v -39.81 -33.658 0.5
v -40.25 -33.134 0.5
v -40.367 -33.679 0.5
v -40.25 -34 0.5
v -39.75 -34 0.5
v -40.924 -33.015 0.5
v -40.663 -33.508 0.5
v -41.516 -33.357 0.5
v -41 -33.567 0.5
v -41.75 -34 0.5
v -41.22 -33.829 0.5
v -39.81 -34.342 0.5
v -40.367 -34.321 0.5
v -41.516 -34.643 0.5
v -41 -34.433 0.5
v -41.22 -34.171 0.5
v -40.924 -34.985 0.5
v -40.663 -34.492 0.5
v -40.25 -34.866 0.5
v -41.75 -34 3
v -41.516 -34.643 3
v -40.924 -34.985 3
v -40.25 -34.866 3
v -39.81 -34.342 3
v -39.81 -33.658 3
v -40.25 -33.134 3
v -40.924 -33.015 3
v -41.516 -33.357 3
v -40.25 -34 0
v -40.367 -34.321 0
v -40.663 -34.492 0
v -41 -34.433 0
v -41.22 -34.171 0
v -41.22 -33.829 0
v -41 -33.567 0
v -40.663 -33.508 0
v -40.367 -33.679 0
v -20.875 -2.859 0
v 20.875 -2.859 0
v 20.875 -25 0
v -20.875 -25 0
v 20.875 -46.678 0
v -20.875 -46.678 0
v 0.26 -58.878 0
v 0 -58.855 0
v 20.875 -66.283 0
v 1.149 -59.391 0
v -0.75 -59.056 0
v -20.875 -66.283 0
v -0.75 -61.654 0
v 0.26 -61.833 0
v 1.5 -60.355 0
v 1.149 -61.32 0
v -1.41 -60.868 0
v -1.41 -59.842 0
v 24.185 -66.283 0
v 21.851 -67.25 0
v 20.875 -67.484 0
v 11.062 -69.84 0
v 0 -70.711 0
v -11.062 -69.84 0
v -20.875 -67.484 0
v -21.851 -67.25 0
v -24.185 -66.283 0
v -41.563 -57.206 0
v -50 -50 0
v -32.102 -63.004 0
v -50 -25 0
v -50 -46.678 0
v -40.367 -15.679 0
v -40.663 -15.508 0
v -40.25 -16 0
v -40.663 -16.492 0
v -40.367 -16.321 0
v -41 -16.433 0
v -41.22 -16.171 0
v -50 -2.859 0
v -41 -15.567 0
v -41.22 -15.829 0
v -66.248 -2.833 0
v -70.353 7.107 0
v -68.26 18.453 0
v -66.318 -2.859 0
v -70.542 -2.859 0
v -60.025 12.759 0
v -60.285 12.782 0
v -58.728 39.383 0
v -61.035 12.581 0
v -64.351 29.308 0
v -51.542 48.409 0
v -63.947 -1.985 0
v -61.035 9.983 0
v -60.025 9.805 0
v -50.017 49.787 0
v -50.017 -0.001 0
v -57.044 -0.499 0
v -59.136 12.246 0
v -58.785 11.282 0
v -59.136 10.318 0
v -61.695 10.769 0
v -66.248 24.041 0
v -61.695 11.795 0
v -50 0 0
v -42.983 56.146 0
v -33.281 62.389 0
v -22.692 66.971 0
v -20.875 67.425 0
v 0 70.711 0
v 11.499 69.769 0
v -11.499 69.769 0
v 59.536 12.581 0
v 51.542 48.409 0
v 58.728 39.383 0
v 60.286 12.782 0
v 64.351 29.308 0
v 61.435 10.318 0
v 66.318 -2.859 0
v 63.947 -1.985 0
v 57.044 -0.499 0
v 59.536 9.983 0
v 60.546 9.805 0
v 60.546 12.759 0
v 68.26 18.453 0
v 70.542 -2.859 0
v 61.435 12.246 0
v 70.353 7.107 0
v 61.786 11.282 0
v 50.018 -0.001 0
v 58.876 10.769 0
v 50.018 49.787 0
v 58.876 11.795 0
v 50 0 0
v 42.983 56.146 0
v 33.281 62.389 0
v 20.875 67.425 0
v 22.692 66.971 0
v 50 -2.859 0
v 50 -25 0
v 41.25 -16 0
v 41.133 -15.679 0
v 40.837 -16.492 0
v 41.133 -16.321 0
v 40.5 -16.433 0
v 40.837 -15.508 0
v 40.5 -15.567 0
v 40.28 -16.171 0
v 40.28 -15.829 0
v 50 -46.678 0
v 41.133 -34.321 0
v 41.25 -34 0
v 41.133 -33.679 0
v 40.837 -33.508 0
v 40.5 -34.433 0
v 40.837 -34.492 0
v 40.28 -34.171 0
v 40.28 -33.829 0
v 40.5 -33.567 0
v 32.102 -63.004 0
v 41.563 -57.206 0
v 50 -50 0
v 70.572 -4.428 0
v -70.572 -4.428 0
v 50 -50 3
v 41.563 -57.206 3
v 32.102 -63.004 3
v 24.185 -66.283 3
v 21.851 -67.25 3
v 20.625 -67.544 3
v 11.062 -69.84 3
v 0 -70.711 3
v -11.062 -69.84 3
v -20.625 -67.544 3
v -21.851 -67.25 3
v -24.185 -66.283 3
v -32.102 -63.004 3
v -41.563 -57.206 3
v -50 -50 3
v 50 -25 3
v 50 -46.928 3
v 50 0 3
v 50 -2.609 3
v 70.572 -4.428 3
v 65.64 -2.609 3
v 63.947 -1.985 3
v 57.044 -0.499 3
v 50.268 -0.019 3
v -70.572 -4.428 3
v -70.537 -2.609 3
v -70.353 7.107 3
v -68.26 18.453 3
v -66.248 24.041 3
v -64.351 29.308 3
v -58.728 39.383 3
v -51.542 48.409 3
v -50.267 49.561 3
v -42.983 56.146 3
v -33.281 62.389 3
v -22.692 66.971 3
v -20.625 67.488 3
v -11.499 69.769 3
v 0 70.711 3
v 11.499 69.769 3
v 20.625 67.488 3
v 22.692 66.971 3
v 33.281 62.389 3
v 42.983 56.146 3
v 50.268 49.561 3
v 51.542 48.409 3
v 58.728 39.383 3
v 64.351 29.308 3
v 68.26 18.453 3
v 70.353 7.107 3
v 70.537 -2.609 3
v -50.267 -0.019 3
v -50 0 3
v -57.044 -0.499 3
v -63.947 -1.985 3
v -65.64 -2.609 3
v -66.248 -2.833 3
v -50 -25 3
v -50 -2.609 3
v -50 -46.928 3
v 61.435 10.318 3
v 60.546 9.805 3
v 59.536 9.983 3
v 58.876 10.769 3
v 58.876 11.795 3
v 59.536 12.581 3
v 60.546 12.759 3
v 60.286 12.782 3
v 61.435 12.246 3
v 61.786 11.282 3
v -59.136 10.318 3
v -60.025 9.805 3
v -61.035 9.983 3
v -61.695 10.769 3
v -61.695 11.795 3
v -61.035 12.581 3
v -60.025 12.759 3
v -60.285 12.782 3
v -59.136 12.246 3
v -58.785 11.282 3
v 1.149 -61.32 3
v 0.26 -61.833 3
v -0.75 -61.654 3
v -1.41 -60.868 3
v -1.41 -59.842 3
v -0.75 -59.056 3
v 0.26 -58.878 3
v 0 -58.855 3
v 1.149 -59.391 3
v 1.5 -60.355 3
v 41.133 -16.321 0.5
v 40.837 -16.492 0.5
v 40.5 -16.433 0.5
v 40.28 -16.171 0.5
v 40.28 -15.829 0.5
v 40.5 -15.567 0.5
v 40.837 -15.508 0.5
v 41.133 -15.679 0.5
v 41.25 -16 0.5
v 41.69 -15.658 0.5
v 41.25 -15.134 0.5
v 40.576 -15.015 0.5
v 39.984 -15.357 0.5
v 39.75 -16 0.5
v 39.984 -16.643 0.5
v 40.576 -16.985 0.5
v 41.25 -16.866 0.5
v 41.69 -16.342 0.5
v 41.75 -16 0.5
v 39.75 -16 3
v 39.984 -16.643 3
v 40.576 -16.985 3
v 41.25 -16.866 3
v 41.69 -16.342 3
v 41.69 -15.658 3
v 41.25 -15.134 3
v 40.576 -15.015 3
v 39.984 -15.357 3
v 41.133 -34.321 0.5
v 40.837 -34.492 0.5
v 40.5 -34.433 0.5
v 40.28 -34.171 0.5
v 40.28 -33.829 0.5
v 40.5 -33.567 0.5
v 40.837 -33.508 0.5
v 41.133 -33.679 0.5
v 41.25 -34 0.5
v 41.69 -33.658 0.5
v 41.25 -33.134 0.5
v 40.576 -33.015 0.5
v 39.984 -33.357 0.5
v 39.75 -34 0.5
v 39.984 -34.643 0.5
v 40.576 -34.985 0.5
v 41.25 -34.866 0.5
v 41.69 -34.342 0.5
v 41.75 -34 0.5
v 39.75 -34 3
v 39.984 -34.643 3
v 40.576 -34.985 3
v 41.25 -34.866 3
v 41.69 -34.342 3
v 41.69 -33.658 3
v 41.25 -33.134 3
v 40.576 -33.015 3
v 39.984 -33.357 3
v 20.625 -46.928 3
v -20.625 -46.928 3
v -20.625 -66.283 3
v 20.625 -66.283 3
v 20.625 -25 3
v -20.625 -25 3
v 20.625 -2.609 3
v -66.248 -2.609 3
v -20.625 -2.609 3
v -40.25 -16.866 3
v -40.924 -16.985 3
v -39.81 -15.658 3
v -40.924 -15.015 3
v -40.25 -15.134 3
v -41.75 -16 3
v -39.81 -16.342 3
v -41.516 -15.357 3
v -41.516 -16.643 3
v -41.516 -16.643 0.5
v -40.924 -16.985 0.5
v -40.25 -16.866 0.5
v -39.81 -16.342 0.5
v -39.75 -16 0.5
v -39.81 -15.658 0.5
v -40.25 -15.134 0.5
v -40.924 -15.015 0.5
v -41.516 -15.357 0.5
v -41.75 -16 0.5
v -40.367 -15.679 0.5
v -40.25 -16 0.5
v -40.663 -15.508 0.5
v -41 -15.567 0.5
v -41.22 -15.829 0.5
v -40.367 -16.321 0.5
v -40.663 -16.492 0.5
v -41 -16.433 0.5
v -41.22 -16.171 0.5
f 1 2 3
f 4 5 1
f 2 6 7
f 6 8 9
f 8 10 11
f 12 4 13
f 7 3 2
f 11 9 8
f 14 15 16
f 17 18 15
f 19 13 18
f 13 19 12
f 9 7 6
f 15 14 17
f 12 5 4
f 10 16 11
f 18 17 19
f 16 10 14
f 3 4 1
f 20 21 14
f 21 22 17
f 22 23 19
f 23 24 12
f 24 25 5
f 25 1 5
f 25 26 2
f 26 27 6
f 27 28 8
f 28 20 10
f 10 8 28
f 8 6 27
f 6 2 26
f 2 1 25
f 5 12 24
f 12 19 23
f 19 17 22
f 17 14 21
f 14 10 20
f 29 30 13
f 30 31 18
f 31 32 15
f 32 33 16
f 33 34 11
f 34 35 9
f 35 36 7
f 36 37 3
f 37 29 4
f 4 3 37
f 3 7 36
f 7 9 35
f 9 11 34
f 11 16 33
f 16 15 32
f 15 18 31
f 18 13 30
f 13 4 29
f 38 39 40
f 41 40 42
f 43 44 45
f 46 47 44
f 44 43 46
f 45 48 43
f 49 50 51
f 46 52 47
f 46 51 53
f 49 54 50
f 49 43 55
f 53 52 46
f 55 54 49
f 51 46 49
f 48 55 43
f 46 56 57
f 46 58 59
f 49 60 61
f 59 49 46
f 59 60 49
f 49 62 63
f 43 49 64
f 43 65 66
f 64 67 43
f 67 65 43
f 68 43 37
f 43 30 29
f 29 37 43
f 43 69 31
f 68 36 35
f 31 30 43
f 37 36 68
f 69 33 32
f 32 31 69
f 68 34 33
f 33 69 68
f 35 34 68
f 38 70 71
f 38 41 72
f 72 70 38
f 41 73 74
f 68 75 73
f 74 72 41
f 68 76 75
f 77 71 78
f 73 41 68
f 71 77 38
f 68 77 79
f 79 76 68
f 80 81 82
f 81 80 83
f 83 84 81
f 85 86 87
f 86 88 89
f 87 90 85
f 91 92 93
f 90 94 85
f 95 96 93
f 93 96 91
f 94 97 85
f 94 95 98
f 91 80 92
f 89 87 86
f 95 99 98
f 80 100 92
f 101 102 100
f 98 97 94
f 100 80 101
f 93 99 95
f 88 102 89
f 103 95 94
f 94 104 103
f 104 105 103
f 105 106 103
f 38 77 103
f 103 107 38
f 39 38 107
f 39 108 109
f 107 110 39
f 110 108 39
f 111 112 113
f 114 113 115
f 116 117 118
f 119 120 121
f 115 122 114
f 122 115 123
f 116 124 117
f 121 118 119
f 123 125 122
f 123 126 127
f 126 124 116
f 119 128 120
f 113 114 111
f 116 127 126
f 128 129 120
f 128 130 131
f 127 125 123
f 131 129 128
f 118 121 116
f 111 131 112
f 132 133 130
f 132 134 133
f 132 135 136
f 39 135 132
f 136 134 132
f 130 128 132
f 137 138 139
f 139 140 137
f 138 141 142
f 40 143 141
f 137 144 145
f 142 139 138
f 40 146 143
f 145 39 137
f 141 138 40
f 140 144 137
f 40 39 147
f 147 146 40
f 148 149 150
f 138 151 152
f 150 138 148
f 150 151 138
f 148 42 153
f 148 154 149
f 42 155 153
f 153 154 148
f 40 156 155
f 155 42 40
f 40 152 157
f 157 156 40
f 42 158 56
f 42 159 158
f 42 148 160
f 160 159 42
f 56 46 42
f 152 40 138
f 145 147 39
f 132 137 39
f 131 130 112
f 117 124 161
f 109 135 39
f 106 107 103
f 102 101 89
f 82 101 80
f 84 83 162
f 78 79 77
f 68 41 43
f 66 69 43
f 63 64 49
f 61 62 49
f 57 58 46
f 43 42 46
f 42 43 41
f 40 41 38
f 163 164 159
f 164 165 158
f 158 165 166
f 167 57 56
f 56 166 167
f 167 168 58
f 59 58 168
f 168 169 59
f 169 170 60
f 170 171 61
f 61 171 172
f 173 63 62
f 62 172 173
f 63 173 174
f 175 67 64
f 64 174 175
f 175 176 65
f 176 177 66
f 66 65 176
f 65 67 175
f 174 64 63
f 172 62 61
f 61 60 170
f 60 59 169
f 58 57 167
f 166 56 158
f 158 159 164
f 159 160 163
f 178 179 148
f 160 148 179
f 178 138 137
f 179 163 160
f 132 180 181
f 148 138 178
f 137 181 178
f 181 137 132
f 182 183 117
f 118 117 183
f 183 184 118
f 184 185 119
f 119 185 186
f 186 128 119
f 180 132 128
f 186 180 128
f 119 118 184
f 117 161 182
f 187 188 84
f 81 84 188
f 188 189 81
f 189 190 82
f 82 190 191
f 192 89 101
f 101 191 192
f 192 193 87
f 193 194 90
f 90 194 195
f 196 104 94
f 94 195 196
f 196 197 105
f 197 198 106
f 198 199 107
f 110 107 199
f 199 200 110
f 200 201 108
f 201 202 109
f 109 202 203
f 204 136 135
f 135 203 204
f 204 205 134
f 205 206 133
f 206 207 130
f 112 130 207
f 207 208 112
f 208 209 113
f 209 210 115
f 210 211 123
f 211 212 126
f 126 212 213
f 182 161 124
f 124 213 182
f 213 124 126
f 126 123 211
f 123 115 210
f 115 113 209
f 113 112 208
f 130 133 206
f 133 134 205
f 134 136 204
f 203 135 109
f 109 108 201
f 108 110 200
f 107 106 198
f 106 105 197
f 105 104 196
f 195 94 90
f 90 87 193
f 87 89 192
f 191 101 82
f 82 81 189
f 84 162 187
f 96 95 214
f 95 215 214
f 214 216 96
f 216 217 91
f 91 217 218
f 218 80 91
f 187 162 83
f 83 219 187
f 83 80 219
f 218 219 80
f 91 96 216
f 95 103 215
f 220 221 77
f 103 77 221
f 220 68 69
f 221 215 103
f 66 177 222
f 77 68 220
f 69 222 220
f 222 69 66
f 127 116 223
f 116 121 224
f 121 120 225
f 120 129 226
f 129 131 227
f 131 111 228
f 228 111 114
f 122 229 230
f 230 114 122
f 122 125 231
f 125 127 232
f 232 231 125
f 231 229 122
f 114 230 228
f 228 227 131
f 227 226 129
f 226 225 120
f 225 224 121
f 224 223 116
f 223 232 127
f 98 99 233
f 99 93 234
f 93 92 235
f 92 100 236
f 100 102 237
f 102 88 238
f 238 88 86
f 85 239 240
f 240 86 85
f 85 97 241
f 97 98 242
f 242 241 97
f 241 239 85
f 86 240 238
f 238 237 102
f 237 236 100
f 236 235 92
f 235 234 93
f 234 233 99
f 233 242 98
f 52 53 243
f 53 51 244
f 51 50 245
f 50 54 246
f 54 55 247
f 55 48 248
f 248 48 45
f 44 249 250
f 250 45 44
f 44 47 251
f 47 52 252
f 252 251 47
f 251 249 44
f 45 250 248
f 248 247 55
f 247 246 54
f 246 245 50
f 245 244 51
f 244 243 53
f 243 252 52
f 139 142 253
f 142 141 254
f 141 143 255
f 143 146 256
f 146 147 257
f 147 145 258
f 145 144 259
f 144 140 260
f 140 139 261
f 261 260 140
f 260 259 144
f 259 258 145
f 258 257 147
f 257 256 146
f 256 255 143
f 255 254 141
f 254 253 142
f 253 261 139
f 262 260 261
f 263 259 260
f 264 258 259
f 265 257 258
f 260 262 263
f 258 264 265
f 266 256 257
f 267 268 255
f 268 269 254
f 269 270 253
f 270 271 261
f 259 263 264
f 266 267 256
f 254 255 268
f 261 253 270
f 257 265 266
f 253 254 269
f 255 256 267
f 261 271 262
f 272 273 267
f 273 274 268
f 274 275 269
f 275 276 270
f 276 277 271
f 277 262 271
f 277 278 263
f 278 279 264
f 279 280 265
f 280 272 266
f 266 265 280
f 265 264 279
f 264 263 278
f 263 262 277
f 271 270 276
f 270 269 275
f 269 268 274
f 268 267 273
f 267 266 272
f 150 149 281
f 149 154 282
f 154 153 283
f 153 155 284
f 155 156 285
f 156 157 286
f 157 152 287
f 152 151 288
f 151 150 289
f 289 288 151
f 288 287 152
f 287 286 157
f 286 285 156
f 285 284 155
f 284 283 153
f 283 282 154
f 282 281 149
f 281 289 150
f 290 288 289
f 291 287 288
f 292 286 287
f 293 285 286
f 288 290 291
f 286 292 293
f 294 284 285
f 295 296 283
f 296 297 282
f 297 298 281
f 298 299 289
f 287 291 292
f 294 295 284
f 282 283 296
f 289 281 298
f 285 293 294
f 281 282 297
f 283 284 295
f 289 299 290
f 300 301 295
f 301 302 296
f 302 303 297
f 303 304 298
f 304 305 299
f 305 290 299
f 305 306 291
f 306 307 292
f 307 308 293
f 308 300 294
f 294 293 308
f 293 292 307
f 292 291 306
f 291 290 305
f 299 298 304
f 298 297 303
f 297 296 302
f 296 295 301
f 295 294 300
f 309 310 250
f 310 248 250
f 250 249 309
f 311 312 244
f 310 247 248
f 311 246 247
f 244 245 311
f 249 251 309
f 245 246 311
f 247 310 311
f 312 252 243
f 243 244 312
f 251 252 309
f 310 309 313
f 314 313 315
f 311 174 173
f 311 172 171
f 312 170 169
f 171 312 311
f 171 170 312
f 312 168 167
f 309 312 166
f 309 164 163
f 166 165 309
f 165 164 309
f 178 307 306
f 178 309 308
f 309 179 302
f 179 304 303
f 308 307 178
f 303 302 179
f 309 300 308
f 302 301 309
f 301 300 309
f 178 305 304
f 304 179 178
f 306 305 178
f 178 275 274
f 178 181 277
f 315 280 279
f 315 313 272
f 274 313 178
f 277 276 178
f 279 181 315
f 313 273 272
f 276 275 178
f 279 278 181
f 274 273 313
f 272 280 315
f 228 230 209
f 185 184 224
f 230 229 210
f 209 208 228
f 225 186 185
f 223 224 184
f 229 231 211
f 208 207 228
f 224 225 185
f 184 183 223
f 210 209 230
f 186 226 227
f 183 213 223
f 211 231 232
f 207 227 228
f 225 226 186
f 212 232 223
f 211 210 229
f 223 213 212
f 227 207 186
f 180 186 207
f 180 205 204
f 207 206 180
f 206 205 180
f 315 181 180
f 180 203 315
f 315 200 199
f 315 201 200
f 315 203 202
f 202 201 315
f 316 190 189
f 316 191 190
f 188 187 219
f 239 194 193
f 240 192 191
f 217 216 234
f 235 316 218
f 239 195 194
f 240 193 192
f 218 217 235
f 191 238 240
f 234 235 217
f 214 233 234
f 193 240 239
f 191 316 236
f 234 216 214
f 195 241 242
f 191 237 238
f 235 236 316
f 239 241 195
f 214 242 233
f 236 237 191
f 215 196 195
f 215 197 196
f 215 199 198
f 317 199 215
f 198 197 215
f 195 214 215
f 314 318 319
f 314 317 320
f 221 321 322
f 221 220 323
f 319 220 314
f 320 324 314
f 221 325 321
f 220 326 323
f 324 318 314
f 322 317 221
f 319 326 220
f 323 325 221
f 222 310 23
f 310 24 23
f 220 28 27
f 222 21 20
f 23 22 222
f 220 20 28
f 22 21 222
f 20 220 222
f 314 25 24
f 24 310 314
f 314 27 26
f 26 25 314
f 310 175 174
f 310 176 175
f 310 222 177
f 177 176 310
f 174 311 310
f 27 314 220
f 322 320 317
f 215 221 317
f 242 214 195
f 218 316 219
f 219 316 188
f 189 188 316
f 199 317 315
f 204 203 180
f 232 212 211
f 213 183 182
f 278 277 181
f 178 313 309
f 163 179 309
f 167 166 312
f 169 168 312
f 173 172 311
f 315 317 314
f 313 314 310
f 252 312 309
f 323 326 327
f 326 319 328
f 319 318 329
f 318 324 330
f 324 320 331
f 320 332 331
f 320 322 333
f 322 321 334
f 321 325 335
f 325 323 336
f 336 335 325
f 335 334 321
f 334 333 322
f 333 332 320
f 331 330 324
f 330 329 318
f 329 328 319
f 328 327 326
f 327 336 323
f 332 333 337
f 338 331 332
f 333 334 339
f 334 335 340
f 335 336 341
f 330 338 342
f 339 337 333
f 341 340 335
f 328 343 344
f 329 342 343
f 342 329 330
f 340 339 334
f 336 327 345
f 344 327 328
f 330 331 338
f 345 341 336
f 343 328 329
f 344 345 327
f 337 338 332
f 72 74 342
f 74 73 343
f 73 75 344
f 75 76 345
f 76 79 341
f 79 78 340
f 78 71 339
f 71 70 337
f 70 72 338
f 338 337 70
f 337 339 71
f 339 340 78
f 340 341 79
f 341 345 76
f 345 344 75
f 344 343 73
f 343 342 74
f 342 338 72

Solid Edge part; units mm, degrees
sketch "Sketch1" plane through (0, 0, 0) normal (0, 0, 1) x (1, 0, 0)
  line L0 (50, -50) -> (50, 0)
  arc A0 (50, 0) -> (70.5719, -4.4281) centre (50, -50) cw
  arc A1 (70.5719, -4.4281) -> (50, 50) centre (0, 0) ccw
  arc A2 (-50, 50) -> (50, 50) centre (0, 0) cw
  arc A3 (-50, 50) -> (-70.5719, -4.4281) centre (0, 0) ccw
  arc A4 (-50, 0) -> (-70.5719, -4.4281) centre (-50, -50) ccw
  line L1 (-50, 0) -> (-50, -50)
  arc A5 (-50, -50) -> (50, -50) centre (0, 0) ccw
extrude "Protrusion1" add sketch "Sketch1" along normal blind 3
sketch "Sketch2" plane through (0, 0, 0) normal (0, 0, 1) x (1, 0, 0)
  circle A0 centre (-40.75, -34) radius 1
  circle A1 centre (40.75, -16) radius 1
  circle A2 centre (40.75, -34) radius 1
  circle A3 centre (-40.75, -16) radius 1
extrude "ExtrudedCutout_1" cut sketch "Sketch2" along normal blind 3
sketch "Sketch3" plane through (0, 0, 3) normal (0, 0, 1) x (0, 1, 0)
  circle A0 centre (11.2819, -60.2859) radius 1.5
  circle A1 centre (11.2819, 60.285) radius 1.5
  circle A2 centre (-60.3553, 0) radius 1.5
extrude "ExtrudedCutout_2" cut sketch "Sketch3" against normal blind 3
sketch "Sketch4" plane through (0, 0, 3) normal (0, 0, 1) x (0, 1, 0)
  circle A0 centre (-34, 40.75) radius 0.5
  circle A1 centre (-16, 40.75) radius 0.5
  circle A2 centre (-34, -40.75) radius 1.05
  circle A3 centre (-34, -40.75) radius 0.5
  circle A4 centre (-16, -40.75) radius 1
  circle A5 centre (-16, -40.75) radius 1.05
  circle A6 centre (-16, -40.75) radius 0.5
  circle A7 centre (-34, 40.75) radius 1.05
  circle A8 centre (-16, 40.75) radius 1.05
extrude "ExtrudedProtrusion_2" add sketch "Sketch4" along normal blind 142.4171
sketch "Sketch5" plane through (0, 0, 0) normal (0, 0, -1) x (0, 1, 0)
  circle A0 centre (-16, -40.75) radius 0.5
  circle A1 centre (-34, -40.75) radius 0.5
  circle A2 centre (-16, 40.75) radius 0.5
  circle A3 centre (-34, 40.75) radius 0.5
extrude "ExtrudedCutout_3" cut sketch "Sketch5" against normal blind 319.3791
sketch "Sketch6" plane through (0, 0, 3) normal (0, 0, 1) x (0, 1, 0)
  circle A0 centre (-16, 40.75) radius 1.05
  circle A1 centre (-34, 40.75) radius 1.05
  circle A2 centre (-16, -40.75) radius 1.05
  circle A3 centre (-34, -40.75) radius 1.05
extrude "ExtrudedCutout_4" cut sketch "Sketch6" along normal blind 870.2731
sketch "Sketch7" plane through (0, 0, 0) normal (0, 0, -1) x (0, 1, 0)
  circle A0 centre (-16, 40.75) radius 1.05
  circle A1 centre (-34, 40.75) radius 1.05
  circle A2 centre (-16, -40.75) radius 1.05
  circle A3 centre (-34, -40.75) radius 1.05
extrude "ExtrudedProtrusion_6" add sketch "Sketch7" against normal blind 0.5
sketch "Sketch8" plane through (40.75, -16, 0.5) normal (0, 0, 1) x (1, 0, 0)
  circle A0 centre (0, 0) radius 0.5
  circle A1 centre (0, -18) radius 0.5
  circle A2 centre (-81.5, 0) radius 0.5
  circle A3 centre (-81.5, -18) radius 0.5
extrude "Cutout1" cut sketch "Sketch8" against normal blind 3
